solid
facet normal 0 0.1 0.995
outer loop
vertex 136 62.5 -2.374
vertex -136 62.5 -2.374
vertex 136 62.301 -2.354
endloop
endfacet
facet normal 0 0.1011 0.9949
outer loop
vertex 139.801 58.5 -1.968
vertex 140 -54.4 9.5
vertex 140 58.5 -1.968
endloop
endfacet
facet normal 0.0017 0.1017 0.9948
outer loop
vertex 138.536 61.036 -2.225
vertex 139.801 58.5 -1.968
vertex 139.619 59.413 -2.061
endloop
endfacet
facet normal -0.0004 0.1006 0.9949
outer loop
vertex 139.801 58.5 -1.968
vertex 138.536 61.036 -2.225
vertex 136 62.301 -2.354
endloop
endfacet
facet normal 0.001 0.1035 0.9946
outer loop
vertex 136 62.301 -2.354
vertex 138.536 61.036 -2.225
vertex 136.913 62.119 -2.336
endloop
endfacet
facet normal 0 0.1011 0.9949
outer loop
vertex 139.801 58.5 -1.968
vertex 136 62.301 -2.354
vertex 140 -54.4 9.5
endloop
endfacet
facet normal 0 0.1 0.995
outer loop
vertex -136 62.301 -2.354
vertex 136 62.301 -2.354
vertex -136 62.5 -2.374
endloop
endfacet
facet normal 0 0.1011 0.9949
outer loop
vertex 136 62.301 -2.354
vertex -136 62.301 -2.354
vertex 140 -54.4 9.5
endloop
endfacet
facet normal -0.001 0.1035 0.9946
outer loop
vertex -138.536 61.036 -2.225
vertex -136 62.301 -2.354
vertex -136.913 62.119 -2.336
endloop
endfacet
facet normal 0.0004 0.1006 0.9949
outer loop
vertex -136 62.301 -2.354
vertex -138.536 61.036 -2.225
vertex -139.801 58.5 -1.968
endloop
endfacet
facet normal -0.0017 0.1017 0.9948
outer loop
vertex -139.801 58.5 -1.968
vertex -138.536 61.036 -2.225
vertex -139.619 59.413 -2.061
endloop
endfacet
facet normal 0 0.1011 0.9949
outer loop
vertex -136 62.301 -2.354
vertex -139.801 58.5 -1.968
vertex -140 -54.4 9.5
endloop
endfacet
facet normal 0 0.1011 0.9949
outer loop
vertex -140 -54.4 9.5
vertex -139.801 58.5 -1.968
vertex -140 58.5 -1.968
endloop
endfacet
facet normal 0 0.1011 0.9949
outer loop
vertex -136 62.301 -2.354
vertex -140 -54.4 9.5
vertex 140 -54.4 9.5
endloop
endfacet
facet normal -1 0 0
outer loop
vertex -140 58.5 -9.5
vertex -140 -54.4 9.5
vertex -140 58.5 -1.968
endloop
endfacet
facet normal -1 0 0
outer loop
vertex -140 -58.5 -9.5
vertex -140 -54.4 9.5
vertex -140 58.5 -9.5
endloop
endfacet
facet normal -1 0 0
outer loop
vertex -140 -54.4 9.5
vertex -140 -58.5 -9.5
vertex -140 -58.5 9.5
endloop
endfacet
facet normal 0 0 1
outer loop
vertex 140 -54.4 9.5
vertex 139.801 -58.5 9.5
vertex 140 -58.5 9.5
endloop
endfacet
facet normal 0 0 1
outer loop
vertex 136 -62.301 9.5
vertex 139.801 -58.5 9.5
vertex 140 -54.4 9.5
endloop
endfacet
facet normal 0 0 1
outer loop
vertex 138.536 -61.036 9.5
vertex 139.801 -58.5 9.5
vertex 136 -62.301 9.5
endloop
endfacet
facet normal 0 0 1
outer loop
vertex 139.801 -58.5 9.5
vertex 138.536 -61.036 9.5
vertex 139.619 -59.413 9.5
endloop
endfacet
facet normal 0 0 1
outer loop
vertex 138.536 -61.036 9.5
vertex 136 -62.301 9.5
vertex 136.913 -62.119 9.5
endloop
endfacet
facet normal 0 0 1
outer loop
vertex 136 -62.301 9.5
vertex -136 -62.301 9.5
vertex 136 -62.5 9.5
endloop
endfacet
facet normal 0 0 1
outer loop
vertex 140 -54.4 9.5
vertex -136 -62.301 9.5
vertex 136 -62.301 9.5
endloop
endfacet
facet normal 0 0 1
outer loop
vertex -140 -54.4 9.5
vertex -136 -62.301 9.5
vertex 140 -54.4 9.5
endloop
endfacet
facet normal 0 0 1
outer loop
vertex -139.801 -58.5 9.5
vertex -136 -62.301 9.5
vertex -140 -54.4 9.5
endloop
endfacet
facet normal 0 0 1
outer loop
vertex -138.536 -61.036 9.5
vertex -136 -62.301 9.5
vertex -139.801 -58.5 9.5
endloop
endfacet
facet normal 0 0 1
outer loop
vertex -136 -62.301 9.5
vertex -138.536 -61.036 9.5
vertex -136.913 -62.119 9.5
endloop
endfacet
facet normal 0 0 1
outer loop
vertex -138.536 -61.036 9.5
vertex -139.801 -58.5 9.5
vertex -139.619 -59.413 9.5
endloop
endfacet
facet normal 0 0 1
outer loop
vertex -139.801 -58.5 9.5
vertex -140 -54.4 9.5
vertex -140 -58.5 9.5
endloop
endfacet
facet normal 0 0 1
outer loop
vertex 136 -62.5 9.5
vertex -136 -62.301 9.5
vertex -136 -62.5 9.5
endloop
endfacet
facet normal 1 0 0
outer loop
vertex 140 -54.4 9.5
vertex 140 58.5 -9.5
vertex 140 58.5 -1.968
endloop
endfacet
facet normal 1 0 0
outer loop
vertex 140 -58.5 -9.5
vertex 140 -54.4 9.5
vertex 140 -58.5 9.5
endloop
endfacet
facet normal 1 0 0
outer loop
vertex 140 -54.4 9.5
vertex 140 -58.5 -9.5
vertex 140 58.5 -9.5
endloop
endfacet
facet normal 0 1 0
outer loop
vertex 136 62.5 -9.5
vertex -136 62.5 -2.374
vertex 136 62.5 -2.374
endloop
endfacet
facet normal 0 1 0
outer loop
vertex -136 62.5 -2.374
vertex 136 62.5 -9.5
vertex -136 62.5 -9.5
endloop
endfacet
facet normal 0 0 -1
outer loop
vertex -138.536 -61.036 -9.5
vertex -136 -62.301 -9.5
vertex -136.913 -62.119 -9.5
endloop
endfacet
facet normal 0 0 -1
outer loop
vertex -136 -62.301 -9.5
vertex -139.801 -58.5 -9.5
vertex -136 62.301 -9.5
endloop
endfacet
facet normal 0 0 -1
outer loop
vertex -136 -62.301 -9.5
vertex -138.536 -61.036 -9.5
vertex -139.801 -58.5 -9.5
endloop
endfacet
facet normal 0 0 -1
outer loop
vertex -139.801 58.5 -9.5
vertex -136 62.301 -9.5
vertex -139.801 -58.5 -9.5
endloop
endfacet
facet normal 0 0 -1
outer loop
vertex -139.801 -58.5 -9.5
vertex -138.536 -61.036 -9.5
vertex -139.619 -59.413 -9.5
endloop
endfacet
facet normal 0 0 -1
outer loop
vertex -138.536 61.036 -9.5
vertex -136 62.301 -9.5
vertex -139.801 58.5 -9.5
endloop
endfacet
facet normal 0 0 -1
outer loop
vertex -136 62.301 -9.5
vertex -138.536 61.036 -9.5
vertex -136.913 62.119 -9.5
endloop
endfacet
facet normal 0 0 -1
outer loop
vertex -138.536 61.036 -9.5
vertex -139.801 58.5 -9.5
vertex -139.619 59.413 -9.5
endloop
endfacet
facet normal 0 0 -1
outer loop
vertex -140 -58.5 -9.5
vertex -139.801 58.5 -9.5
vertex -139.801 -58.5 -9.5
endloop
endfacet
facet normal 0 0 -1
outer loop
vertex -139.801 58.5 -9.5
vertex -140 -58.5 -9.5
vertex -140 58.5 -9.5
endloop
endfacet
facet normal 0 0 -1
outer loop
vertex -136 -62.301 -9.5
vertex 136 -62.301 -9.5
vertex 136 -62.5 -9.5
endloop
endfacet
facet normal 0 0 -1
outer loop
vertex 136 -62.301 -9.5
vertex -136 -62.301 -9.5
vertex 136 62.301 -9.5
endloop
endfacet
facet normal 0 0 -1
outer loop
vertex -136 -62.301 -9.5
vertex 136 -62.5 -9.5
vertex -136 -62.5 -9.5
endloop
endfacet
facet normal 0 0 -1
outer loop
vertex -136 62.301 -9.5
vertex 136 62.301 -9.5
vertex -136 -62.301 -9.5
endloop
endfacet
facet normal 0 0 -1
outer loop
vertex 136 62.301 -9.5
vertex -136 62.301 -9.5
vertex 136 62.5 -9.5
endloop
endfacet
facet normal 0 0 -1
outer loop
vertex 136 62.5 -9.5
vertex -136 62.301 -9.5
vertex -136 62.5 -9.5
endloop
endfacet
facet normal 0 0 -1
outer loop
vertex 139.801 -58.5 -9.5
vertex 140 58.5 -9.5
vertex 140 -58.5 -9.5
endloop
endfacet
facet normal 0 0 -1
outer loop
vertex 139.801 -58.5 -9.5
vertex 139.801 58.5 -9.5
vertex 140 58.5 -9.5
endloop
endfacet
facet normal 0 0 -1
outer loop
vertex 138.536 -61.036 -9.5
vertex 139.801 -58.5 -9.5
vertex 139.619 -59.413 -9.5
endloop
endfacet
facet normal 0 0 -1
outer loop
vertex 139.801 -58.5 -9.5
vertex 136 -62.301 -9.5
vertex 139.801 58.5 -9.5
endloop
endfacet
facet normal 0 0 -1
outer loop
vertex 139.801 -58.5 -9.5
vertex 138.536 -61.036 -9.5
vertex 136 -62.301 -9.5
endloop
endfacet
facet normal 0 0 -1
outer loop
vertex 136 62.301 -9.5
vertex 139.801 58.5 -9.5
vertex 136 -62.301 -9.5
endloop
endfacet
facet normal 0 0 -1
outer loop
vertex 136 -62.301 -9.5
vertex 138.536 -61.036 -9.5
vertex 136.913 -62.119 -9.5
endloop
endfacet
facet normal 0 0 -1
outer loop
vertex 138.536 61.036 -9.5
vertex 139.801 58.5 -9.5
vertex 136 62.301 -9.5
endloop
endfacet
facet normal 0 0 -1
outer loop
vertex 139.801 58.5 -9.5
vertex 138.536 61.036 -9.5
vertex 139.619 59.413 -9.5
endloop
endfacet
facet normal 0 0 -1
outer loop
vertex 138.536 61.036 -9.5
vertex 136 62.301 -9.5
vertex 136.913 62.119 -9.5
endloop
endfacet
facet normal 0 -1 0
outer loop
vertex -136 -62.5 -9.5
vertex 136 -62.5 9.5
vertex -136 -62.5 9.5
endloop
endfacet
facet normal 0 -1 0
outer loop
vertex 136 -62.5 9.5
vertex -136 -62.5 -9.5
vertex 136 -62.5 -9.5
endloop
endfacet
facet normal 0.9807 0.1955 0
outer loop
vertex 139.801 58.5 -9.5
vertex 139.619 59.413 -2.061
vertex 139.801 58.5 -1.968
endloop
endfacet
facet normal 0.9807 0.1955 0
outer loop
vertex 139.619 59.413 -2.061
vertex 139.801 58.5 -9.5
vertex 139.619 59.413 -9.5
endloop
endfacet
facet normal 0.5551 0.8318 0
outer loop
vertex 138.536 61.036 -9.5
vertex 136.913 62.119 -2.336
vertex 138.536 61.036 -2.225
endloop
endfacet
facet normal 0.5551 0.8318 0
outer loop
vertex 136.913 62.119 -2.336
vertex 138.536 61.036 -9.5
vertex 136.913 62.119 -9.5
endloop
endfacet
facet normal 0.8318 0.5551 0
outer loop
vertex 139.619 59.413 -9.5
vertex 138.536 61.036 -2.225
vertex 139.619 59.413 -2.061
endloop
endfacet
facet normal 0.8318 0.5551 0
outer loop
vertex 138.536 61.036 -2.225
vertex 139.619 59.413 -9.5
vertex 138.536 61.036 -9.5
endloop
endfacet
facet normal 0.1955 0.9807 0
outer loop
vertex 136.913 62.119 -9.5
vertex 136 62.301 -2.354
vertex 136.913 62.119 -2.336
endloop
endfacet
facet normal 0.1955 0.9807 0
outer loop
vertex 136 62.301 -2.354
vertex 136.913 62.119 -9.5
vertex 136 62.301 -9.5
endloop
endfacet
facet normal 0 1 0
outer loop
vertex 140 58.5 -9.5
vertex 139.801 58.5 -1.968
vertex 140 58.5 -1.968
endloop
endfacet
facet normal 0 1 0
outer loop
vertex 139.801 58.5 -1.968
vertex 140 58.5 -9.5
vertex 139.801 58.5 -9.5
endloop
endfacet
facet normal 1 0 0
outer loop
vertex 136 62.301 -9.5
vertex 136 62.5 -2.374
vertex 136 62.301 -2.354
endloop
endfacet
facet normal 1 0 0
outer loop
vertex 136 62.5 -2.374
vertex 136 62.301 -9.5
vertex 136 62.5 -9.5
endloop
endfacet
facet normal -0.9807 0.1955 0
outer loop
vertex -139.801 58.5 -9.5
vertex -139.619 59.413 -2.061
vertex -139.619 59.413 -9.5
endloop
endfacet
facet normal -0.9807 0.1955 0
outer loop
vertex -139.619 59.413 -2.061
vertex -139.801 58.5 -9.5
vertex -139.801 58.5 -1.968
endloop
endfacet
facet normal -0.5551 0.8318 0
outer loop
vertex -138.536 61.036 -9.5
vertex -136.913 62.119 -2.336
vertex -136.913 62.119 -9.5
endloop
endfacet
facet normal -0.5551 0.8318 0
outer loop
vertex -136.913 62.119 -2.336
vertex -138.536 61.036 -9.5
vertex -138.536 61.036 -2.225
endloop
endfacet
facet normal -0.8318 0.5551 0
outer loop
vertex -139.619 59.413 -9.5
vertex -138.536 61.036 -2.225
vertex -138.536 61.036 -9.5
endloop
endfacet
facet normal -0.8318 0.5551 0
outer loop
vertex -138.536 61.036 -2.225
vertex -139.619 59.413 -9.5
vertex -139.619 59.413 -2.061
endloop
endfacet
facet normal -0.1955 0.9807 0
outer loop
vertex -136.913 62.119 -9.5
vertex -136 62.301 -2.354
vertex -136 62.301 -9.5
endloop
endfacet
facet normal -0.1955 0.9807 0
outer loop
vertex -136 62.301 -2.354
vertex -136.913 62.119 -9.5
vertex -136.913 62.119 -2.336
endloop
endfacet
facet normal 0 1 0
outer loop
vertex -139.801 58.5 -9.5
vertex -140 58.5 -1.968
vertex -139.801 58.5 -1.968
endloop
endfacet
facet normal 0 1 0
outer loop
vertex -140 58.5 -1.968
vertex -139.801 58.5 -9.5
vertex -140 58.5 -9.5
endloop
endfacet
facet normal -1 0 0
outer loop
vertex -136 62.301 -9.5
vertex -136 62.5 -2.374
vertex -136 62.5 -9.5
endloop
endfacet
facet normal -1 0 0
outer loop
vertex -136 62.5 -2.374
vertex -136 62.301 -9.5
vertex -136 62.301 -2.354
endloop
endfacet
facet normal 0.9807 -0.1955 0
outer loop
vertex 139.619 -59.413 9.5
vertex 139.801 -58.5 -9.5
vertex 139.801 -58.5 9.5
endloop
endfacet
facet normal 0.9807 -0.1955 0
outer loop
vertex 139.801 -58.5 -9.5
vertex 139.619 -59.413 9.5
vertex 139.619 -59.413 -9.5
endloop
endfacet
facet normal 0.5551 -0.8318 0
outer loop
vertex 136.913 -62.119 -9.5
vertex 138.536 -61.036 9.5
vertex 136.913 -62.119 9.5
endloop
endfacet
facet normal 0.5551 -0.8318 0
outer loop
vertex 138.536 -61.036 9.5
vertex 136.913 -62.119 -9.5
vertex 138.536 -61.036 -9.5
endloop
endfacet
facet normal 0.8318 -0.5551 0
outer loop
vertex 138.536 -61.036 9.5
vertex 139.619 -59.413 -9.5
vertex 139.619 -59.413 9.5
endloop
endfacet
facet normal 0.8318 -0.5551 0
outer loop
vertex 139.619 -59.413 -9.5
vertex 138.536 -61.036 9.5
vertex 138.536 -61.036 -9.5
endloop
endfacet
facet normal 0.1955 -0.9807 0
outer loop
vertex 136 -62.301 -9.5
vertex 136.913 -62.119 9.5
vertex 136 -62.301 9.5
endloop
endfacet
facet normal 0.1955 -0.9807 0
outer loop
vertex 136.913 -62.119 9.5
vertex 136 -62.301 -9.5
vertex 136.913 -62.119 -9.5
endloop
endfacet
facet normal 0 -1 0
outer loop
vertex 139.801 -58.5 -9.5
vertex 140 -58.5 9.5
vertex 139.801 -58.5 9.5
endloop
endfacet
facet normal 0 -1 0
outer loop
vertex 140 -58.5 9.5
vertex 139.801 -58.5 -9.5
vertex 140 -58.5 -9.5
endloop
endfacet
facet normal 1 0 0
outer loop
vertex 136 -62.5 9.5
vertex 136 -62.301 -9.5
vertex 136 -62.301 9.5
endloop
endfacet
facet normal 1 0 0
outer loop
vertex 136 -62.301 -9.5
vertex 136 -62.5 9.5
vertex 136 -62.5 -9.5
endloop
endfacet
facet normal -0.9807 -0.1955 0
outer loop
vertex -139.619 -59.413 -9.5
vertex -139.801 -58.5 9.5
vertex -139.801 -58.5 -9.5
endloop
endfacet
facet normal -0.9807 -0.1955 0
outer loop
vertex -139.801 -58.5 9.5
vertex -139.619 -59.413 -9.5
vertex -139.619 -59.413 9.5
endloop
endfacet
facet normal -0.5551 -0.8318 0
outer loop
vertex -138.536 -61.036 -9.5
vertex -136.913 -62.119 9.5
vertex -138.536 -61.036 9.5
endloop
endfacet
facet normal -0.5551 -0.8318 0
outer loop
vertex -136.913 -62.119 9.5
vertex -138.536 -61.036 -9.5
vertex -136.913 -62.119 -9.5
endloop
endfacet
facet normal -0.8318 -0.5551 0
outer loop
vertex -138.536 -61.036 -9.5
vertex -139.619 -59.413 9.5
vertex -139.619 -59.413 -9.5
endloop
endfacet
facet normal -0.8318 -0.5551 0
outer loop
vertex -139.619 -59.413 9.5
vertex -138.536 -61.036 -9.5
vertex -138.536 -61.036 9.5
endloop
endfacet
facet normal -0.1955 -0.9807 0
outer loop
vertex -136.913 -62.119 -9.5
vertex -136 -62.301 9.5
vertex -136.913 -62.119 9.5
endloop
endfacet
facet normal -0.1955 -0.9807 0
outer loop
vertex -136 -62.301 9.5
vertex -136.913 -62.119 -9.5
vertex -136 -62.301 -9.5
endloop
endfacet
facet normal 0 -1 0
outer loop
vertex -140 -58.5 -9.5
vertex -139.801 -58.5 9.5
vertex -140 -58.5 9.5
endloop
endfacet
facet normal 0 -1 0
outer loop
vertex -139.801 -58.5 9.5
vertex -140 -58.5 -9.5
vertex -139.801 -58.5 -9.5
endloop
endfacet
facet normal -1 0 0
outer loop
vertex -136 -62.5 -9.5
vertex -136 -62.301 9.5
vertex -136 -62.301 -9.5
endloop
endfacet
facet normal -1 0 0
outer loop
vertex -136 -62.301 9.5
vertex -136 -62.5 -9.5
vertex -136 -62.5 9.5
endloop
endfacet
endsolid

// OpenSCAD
//le clavier



module keyboard_logitech_pebble_keys_2_K380S(){
    long=280;
    larg=125;
    hmax=19;
    hmin=7;
    
    difference()
    {
        difference(){
            cube([long, larg, hmax], true);
            union(){
                translate([0,0,9])
                   rotate([-5.8,0,0])
                        cube([long+5, larg+5, 10], true);
                 
                 translate([0,0,10+hmin])
                     rotate([-5.8,0,0])
                    cube([long+5, larg+5, 10], true);
            }
        }
        
        keyboard_logitech_pebble_keys_2_K380S8_bottom_left_corner(long, larg, hmax);
        keyboard_logitech_pebble_keys_2_K380S8_bottom_right_corner(long, larg, hmax);
        keyboard_logitech_pebble_keys_2_K380S8_top_left_corner(long, larg, hmax);
        keyboard_logitech_pebble_keys_2_K380S8_top_right_corner(long, larg, hmax);
    }
}

module keyboard_logitech_pebble_keys_2_K380S8_bottom_left_corner(long, larg, hmax){
    r=10;
    difference()
    {
        translate([(long/2)-r,(larg/2)-r,-hmax])
            cube([r+1, r+1, hmax+1]);
        
        translate([(long-r)/2,(larg-r)/2,-hmax/2])
            cylinder(h=hmax+10, d1=r, d2=r, center=true);
        
        
        translate([(long/2)-r,(larg/2)-r*1.5,-hmax])
            cube([r+10, r+1, hmax+10]);
        
        translate([(long/2)-r*1.5,(larg/2)-r,-hmax])
            cube([r+1, r+10, hmax+10]);
    }
}

module keyboard_logitech_pebble_keys_2_K380S8_bottom_right_corner(long, larg, hmax)
{
    translate([0, 0, -hmax])
        rotate([0,180,0])
            keyboard_logitech_pebble_keys_2_K380S8_bottom_left_corner(long, larg, hmax);
}

module keyboard_logitech_pebble_keys_2_K380S8_top_left_corner(long, larg, hmax)
{
    translate([0, 0, -hmax/2])
        rotate([180,0,0])
            keyboard_logitech_pebble_keys_2_K380S8_bottom_left_corner(long, larg, hmax);
}

module keyboard_logitech_pebble_keys_2_K380S8_top_right_corner(long, larg, hmax)
{
    translate([0, 0, hmax/2])
        rotate([180,180,0])
            keyboard_logitech_pebble_keys_2_K380S8_bottom_left_corner(long, larg, hmax);
}

keyboard_logitech_pebble_keys_2_K380S();
